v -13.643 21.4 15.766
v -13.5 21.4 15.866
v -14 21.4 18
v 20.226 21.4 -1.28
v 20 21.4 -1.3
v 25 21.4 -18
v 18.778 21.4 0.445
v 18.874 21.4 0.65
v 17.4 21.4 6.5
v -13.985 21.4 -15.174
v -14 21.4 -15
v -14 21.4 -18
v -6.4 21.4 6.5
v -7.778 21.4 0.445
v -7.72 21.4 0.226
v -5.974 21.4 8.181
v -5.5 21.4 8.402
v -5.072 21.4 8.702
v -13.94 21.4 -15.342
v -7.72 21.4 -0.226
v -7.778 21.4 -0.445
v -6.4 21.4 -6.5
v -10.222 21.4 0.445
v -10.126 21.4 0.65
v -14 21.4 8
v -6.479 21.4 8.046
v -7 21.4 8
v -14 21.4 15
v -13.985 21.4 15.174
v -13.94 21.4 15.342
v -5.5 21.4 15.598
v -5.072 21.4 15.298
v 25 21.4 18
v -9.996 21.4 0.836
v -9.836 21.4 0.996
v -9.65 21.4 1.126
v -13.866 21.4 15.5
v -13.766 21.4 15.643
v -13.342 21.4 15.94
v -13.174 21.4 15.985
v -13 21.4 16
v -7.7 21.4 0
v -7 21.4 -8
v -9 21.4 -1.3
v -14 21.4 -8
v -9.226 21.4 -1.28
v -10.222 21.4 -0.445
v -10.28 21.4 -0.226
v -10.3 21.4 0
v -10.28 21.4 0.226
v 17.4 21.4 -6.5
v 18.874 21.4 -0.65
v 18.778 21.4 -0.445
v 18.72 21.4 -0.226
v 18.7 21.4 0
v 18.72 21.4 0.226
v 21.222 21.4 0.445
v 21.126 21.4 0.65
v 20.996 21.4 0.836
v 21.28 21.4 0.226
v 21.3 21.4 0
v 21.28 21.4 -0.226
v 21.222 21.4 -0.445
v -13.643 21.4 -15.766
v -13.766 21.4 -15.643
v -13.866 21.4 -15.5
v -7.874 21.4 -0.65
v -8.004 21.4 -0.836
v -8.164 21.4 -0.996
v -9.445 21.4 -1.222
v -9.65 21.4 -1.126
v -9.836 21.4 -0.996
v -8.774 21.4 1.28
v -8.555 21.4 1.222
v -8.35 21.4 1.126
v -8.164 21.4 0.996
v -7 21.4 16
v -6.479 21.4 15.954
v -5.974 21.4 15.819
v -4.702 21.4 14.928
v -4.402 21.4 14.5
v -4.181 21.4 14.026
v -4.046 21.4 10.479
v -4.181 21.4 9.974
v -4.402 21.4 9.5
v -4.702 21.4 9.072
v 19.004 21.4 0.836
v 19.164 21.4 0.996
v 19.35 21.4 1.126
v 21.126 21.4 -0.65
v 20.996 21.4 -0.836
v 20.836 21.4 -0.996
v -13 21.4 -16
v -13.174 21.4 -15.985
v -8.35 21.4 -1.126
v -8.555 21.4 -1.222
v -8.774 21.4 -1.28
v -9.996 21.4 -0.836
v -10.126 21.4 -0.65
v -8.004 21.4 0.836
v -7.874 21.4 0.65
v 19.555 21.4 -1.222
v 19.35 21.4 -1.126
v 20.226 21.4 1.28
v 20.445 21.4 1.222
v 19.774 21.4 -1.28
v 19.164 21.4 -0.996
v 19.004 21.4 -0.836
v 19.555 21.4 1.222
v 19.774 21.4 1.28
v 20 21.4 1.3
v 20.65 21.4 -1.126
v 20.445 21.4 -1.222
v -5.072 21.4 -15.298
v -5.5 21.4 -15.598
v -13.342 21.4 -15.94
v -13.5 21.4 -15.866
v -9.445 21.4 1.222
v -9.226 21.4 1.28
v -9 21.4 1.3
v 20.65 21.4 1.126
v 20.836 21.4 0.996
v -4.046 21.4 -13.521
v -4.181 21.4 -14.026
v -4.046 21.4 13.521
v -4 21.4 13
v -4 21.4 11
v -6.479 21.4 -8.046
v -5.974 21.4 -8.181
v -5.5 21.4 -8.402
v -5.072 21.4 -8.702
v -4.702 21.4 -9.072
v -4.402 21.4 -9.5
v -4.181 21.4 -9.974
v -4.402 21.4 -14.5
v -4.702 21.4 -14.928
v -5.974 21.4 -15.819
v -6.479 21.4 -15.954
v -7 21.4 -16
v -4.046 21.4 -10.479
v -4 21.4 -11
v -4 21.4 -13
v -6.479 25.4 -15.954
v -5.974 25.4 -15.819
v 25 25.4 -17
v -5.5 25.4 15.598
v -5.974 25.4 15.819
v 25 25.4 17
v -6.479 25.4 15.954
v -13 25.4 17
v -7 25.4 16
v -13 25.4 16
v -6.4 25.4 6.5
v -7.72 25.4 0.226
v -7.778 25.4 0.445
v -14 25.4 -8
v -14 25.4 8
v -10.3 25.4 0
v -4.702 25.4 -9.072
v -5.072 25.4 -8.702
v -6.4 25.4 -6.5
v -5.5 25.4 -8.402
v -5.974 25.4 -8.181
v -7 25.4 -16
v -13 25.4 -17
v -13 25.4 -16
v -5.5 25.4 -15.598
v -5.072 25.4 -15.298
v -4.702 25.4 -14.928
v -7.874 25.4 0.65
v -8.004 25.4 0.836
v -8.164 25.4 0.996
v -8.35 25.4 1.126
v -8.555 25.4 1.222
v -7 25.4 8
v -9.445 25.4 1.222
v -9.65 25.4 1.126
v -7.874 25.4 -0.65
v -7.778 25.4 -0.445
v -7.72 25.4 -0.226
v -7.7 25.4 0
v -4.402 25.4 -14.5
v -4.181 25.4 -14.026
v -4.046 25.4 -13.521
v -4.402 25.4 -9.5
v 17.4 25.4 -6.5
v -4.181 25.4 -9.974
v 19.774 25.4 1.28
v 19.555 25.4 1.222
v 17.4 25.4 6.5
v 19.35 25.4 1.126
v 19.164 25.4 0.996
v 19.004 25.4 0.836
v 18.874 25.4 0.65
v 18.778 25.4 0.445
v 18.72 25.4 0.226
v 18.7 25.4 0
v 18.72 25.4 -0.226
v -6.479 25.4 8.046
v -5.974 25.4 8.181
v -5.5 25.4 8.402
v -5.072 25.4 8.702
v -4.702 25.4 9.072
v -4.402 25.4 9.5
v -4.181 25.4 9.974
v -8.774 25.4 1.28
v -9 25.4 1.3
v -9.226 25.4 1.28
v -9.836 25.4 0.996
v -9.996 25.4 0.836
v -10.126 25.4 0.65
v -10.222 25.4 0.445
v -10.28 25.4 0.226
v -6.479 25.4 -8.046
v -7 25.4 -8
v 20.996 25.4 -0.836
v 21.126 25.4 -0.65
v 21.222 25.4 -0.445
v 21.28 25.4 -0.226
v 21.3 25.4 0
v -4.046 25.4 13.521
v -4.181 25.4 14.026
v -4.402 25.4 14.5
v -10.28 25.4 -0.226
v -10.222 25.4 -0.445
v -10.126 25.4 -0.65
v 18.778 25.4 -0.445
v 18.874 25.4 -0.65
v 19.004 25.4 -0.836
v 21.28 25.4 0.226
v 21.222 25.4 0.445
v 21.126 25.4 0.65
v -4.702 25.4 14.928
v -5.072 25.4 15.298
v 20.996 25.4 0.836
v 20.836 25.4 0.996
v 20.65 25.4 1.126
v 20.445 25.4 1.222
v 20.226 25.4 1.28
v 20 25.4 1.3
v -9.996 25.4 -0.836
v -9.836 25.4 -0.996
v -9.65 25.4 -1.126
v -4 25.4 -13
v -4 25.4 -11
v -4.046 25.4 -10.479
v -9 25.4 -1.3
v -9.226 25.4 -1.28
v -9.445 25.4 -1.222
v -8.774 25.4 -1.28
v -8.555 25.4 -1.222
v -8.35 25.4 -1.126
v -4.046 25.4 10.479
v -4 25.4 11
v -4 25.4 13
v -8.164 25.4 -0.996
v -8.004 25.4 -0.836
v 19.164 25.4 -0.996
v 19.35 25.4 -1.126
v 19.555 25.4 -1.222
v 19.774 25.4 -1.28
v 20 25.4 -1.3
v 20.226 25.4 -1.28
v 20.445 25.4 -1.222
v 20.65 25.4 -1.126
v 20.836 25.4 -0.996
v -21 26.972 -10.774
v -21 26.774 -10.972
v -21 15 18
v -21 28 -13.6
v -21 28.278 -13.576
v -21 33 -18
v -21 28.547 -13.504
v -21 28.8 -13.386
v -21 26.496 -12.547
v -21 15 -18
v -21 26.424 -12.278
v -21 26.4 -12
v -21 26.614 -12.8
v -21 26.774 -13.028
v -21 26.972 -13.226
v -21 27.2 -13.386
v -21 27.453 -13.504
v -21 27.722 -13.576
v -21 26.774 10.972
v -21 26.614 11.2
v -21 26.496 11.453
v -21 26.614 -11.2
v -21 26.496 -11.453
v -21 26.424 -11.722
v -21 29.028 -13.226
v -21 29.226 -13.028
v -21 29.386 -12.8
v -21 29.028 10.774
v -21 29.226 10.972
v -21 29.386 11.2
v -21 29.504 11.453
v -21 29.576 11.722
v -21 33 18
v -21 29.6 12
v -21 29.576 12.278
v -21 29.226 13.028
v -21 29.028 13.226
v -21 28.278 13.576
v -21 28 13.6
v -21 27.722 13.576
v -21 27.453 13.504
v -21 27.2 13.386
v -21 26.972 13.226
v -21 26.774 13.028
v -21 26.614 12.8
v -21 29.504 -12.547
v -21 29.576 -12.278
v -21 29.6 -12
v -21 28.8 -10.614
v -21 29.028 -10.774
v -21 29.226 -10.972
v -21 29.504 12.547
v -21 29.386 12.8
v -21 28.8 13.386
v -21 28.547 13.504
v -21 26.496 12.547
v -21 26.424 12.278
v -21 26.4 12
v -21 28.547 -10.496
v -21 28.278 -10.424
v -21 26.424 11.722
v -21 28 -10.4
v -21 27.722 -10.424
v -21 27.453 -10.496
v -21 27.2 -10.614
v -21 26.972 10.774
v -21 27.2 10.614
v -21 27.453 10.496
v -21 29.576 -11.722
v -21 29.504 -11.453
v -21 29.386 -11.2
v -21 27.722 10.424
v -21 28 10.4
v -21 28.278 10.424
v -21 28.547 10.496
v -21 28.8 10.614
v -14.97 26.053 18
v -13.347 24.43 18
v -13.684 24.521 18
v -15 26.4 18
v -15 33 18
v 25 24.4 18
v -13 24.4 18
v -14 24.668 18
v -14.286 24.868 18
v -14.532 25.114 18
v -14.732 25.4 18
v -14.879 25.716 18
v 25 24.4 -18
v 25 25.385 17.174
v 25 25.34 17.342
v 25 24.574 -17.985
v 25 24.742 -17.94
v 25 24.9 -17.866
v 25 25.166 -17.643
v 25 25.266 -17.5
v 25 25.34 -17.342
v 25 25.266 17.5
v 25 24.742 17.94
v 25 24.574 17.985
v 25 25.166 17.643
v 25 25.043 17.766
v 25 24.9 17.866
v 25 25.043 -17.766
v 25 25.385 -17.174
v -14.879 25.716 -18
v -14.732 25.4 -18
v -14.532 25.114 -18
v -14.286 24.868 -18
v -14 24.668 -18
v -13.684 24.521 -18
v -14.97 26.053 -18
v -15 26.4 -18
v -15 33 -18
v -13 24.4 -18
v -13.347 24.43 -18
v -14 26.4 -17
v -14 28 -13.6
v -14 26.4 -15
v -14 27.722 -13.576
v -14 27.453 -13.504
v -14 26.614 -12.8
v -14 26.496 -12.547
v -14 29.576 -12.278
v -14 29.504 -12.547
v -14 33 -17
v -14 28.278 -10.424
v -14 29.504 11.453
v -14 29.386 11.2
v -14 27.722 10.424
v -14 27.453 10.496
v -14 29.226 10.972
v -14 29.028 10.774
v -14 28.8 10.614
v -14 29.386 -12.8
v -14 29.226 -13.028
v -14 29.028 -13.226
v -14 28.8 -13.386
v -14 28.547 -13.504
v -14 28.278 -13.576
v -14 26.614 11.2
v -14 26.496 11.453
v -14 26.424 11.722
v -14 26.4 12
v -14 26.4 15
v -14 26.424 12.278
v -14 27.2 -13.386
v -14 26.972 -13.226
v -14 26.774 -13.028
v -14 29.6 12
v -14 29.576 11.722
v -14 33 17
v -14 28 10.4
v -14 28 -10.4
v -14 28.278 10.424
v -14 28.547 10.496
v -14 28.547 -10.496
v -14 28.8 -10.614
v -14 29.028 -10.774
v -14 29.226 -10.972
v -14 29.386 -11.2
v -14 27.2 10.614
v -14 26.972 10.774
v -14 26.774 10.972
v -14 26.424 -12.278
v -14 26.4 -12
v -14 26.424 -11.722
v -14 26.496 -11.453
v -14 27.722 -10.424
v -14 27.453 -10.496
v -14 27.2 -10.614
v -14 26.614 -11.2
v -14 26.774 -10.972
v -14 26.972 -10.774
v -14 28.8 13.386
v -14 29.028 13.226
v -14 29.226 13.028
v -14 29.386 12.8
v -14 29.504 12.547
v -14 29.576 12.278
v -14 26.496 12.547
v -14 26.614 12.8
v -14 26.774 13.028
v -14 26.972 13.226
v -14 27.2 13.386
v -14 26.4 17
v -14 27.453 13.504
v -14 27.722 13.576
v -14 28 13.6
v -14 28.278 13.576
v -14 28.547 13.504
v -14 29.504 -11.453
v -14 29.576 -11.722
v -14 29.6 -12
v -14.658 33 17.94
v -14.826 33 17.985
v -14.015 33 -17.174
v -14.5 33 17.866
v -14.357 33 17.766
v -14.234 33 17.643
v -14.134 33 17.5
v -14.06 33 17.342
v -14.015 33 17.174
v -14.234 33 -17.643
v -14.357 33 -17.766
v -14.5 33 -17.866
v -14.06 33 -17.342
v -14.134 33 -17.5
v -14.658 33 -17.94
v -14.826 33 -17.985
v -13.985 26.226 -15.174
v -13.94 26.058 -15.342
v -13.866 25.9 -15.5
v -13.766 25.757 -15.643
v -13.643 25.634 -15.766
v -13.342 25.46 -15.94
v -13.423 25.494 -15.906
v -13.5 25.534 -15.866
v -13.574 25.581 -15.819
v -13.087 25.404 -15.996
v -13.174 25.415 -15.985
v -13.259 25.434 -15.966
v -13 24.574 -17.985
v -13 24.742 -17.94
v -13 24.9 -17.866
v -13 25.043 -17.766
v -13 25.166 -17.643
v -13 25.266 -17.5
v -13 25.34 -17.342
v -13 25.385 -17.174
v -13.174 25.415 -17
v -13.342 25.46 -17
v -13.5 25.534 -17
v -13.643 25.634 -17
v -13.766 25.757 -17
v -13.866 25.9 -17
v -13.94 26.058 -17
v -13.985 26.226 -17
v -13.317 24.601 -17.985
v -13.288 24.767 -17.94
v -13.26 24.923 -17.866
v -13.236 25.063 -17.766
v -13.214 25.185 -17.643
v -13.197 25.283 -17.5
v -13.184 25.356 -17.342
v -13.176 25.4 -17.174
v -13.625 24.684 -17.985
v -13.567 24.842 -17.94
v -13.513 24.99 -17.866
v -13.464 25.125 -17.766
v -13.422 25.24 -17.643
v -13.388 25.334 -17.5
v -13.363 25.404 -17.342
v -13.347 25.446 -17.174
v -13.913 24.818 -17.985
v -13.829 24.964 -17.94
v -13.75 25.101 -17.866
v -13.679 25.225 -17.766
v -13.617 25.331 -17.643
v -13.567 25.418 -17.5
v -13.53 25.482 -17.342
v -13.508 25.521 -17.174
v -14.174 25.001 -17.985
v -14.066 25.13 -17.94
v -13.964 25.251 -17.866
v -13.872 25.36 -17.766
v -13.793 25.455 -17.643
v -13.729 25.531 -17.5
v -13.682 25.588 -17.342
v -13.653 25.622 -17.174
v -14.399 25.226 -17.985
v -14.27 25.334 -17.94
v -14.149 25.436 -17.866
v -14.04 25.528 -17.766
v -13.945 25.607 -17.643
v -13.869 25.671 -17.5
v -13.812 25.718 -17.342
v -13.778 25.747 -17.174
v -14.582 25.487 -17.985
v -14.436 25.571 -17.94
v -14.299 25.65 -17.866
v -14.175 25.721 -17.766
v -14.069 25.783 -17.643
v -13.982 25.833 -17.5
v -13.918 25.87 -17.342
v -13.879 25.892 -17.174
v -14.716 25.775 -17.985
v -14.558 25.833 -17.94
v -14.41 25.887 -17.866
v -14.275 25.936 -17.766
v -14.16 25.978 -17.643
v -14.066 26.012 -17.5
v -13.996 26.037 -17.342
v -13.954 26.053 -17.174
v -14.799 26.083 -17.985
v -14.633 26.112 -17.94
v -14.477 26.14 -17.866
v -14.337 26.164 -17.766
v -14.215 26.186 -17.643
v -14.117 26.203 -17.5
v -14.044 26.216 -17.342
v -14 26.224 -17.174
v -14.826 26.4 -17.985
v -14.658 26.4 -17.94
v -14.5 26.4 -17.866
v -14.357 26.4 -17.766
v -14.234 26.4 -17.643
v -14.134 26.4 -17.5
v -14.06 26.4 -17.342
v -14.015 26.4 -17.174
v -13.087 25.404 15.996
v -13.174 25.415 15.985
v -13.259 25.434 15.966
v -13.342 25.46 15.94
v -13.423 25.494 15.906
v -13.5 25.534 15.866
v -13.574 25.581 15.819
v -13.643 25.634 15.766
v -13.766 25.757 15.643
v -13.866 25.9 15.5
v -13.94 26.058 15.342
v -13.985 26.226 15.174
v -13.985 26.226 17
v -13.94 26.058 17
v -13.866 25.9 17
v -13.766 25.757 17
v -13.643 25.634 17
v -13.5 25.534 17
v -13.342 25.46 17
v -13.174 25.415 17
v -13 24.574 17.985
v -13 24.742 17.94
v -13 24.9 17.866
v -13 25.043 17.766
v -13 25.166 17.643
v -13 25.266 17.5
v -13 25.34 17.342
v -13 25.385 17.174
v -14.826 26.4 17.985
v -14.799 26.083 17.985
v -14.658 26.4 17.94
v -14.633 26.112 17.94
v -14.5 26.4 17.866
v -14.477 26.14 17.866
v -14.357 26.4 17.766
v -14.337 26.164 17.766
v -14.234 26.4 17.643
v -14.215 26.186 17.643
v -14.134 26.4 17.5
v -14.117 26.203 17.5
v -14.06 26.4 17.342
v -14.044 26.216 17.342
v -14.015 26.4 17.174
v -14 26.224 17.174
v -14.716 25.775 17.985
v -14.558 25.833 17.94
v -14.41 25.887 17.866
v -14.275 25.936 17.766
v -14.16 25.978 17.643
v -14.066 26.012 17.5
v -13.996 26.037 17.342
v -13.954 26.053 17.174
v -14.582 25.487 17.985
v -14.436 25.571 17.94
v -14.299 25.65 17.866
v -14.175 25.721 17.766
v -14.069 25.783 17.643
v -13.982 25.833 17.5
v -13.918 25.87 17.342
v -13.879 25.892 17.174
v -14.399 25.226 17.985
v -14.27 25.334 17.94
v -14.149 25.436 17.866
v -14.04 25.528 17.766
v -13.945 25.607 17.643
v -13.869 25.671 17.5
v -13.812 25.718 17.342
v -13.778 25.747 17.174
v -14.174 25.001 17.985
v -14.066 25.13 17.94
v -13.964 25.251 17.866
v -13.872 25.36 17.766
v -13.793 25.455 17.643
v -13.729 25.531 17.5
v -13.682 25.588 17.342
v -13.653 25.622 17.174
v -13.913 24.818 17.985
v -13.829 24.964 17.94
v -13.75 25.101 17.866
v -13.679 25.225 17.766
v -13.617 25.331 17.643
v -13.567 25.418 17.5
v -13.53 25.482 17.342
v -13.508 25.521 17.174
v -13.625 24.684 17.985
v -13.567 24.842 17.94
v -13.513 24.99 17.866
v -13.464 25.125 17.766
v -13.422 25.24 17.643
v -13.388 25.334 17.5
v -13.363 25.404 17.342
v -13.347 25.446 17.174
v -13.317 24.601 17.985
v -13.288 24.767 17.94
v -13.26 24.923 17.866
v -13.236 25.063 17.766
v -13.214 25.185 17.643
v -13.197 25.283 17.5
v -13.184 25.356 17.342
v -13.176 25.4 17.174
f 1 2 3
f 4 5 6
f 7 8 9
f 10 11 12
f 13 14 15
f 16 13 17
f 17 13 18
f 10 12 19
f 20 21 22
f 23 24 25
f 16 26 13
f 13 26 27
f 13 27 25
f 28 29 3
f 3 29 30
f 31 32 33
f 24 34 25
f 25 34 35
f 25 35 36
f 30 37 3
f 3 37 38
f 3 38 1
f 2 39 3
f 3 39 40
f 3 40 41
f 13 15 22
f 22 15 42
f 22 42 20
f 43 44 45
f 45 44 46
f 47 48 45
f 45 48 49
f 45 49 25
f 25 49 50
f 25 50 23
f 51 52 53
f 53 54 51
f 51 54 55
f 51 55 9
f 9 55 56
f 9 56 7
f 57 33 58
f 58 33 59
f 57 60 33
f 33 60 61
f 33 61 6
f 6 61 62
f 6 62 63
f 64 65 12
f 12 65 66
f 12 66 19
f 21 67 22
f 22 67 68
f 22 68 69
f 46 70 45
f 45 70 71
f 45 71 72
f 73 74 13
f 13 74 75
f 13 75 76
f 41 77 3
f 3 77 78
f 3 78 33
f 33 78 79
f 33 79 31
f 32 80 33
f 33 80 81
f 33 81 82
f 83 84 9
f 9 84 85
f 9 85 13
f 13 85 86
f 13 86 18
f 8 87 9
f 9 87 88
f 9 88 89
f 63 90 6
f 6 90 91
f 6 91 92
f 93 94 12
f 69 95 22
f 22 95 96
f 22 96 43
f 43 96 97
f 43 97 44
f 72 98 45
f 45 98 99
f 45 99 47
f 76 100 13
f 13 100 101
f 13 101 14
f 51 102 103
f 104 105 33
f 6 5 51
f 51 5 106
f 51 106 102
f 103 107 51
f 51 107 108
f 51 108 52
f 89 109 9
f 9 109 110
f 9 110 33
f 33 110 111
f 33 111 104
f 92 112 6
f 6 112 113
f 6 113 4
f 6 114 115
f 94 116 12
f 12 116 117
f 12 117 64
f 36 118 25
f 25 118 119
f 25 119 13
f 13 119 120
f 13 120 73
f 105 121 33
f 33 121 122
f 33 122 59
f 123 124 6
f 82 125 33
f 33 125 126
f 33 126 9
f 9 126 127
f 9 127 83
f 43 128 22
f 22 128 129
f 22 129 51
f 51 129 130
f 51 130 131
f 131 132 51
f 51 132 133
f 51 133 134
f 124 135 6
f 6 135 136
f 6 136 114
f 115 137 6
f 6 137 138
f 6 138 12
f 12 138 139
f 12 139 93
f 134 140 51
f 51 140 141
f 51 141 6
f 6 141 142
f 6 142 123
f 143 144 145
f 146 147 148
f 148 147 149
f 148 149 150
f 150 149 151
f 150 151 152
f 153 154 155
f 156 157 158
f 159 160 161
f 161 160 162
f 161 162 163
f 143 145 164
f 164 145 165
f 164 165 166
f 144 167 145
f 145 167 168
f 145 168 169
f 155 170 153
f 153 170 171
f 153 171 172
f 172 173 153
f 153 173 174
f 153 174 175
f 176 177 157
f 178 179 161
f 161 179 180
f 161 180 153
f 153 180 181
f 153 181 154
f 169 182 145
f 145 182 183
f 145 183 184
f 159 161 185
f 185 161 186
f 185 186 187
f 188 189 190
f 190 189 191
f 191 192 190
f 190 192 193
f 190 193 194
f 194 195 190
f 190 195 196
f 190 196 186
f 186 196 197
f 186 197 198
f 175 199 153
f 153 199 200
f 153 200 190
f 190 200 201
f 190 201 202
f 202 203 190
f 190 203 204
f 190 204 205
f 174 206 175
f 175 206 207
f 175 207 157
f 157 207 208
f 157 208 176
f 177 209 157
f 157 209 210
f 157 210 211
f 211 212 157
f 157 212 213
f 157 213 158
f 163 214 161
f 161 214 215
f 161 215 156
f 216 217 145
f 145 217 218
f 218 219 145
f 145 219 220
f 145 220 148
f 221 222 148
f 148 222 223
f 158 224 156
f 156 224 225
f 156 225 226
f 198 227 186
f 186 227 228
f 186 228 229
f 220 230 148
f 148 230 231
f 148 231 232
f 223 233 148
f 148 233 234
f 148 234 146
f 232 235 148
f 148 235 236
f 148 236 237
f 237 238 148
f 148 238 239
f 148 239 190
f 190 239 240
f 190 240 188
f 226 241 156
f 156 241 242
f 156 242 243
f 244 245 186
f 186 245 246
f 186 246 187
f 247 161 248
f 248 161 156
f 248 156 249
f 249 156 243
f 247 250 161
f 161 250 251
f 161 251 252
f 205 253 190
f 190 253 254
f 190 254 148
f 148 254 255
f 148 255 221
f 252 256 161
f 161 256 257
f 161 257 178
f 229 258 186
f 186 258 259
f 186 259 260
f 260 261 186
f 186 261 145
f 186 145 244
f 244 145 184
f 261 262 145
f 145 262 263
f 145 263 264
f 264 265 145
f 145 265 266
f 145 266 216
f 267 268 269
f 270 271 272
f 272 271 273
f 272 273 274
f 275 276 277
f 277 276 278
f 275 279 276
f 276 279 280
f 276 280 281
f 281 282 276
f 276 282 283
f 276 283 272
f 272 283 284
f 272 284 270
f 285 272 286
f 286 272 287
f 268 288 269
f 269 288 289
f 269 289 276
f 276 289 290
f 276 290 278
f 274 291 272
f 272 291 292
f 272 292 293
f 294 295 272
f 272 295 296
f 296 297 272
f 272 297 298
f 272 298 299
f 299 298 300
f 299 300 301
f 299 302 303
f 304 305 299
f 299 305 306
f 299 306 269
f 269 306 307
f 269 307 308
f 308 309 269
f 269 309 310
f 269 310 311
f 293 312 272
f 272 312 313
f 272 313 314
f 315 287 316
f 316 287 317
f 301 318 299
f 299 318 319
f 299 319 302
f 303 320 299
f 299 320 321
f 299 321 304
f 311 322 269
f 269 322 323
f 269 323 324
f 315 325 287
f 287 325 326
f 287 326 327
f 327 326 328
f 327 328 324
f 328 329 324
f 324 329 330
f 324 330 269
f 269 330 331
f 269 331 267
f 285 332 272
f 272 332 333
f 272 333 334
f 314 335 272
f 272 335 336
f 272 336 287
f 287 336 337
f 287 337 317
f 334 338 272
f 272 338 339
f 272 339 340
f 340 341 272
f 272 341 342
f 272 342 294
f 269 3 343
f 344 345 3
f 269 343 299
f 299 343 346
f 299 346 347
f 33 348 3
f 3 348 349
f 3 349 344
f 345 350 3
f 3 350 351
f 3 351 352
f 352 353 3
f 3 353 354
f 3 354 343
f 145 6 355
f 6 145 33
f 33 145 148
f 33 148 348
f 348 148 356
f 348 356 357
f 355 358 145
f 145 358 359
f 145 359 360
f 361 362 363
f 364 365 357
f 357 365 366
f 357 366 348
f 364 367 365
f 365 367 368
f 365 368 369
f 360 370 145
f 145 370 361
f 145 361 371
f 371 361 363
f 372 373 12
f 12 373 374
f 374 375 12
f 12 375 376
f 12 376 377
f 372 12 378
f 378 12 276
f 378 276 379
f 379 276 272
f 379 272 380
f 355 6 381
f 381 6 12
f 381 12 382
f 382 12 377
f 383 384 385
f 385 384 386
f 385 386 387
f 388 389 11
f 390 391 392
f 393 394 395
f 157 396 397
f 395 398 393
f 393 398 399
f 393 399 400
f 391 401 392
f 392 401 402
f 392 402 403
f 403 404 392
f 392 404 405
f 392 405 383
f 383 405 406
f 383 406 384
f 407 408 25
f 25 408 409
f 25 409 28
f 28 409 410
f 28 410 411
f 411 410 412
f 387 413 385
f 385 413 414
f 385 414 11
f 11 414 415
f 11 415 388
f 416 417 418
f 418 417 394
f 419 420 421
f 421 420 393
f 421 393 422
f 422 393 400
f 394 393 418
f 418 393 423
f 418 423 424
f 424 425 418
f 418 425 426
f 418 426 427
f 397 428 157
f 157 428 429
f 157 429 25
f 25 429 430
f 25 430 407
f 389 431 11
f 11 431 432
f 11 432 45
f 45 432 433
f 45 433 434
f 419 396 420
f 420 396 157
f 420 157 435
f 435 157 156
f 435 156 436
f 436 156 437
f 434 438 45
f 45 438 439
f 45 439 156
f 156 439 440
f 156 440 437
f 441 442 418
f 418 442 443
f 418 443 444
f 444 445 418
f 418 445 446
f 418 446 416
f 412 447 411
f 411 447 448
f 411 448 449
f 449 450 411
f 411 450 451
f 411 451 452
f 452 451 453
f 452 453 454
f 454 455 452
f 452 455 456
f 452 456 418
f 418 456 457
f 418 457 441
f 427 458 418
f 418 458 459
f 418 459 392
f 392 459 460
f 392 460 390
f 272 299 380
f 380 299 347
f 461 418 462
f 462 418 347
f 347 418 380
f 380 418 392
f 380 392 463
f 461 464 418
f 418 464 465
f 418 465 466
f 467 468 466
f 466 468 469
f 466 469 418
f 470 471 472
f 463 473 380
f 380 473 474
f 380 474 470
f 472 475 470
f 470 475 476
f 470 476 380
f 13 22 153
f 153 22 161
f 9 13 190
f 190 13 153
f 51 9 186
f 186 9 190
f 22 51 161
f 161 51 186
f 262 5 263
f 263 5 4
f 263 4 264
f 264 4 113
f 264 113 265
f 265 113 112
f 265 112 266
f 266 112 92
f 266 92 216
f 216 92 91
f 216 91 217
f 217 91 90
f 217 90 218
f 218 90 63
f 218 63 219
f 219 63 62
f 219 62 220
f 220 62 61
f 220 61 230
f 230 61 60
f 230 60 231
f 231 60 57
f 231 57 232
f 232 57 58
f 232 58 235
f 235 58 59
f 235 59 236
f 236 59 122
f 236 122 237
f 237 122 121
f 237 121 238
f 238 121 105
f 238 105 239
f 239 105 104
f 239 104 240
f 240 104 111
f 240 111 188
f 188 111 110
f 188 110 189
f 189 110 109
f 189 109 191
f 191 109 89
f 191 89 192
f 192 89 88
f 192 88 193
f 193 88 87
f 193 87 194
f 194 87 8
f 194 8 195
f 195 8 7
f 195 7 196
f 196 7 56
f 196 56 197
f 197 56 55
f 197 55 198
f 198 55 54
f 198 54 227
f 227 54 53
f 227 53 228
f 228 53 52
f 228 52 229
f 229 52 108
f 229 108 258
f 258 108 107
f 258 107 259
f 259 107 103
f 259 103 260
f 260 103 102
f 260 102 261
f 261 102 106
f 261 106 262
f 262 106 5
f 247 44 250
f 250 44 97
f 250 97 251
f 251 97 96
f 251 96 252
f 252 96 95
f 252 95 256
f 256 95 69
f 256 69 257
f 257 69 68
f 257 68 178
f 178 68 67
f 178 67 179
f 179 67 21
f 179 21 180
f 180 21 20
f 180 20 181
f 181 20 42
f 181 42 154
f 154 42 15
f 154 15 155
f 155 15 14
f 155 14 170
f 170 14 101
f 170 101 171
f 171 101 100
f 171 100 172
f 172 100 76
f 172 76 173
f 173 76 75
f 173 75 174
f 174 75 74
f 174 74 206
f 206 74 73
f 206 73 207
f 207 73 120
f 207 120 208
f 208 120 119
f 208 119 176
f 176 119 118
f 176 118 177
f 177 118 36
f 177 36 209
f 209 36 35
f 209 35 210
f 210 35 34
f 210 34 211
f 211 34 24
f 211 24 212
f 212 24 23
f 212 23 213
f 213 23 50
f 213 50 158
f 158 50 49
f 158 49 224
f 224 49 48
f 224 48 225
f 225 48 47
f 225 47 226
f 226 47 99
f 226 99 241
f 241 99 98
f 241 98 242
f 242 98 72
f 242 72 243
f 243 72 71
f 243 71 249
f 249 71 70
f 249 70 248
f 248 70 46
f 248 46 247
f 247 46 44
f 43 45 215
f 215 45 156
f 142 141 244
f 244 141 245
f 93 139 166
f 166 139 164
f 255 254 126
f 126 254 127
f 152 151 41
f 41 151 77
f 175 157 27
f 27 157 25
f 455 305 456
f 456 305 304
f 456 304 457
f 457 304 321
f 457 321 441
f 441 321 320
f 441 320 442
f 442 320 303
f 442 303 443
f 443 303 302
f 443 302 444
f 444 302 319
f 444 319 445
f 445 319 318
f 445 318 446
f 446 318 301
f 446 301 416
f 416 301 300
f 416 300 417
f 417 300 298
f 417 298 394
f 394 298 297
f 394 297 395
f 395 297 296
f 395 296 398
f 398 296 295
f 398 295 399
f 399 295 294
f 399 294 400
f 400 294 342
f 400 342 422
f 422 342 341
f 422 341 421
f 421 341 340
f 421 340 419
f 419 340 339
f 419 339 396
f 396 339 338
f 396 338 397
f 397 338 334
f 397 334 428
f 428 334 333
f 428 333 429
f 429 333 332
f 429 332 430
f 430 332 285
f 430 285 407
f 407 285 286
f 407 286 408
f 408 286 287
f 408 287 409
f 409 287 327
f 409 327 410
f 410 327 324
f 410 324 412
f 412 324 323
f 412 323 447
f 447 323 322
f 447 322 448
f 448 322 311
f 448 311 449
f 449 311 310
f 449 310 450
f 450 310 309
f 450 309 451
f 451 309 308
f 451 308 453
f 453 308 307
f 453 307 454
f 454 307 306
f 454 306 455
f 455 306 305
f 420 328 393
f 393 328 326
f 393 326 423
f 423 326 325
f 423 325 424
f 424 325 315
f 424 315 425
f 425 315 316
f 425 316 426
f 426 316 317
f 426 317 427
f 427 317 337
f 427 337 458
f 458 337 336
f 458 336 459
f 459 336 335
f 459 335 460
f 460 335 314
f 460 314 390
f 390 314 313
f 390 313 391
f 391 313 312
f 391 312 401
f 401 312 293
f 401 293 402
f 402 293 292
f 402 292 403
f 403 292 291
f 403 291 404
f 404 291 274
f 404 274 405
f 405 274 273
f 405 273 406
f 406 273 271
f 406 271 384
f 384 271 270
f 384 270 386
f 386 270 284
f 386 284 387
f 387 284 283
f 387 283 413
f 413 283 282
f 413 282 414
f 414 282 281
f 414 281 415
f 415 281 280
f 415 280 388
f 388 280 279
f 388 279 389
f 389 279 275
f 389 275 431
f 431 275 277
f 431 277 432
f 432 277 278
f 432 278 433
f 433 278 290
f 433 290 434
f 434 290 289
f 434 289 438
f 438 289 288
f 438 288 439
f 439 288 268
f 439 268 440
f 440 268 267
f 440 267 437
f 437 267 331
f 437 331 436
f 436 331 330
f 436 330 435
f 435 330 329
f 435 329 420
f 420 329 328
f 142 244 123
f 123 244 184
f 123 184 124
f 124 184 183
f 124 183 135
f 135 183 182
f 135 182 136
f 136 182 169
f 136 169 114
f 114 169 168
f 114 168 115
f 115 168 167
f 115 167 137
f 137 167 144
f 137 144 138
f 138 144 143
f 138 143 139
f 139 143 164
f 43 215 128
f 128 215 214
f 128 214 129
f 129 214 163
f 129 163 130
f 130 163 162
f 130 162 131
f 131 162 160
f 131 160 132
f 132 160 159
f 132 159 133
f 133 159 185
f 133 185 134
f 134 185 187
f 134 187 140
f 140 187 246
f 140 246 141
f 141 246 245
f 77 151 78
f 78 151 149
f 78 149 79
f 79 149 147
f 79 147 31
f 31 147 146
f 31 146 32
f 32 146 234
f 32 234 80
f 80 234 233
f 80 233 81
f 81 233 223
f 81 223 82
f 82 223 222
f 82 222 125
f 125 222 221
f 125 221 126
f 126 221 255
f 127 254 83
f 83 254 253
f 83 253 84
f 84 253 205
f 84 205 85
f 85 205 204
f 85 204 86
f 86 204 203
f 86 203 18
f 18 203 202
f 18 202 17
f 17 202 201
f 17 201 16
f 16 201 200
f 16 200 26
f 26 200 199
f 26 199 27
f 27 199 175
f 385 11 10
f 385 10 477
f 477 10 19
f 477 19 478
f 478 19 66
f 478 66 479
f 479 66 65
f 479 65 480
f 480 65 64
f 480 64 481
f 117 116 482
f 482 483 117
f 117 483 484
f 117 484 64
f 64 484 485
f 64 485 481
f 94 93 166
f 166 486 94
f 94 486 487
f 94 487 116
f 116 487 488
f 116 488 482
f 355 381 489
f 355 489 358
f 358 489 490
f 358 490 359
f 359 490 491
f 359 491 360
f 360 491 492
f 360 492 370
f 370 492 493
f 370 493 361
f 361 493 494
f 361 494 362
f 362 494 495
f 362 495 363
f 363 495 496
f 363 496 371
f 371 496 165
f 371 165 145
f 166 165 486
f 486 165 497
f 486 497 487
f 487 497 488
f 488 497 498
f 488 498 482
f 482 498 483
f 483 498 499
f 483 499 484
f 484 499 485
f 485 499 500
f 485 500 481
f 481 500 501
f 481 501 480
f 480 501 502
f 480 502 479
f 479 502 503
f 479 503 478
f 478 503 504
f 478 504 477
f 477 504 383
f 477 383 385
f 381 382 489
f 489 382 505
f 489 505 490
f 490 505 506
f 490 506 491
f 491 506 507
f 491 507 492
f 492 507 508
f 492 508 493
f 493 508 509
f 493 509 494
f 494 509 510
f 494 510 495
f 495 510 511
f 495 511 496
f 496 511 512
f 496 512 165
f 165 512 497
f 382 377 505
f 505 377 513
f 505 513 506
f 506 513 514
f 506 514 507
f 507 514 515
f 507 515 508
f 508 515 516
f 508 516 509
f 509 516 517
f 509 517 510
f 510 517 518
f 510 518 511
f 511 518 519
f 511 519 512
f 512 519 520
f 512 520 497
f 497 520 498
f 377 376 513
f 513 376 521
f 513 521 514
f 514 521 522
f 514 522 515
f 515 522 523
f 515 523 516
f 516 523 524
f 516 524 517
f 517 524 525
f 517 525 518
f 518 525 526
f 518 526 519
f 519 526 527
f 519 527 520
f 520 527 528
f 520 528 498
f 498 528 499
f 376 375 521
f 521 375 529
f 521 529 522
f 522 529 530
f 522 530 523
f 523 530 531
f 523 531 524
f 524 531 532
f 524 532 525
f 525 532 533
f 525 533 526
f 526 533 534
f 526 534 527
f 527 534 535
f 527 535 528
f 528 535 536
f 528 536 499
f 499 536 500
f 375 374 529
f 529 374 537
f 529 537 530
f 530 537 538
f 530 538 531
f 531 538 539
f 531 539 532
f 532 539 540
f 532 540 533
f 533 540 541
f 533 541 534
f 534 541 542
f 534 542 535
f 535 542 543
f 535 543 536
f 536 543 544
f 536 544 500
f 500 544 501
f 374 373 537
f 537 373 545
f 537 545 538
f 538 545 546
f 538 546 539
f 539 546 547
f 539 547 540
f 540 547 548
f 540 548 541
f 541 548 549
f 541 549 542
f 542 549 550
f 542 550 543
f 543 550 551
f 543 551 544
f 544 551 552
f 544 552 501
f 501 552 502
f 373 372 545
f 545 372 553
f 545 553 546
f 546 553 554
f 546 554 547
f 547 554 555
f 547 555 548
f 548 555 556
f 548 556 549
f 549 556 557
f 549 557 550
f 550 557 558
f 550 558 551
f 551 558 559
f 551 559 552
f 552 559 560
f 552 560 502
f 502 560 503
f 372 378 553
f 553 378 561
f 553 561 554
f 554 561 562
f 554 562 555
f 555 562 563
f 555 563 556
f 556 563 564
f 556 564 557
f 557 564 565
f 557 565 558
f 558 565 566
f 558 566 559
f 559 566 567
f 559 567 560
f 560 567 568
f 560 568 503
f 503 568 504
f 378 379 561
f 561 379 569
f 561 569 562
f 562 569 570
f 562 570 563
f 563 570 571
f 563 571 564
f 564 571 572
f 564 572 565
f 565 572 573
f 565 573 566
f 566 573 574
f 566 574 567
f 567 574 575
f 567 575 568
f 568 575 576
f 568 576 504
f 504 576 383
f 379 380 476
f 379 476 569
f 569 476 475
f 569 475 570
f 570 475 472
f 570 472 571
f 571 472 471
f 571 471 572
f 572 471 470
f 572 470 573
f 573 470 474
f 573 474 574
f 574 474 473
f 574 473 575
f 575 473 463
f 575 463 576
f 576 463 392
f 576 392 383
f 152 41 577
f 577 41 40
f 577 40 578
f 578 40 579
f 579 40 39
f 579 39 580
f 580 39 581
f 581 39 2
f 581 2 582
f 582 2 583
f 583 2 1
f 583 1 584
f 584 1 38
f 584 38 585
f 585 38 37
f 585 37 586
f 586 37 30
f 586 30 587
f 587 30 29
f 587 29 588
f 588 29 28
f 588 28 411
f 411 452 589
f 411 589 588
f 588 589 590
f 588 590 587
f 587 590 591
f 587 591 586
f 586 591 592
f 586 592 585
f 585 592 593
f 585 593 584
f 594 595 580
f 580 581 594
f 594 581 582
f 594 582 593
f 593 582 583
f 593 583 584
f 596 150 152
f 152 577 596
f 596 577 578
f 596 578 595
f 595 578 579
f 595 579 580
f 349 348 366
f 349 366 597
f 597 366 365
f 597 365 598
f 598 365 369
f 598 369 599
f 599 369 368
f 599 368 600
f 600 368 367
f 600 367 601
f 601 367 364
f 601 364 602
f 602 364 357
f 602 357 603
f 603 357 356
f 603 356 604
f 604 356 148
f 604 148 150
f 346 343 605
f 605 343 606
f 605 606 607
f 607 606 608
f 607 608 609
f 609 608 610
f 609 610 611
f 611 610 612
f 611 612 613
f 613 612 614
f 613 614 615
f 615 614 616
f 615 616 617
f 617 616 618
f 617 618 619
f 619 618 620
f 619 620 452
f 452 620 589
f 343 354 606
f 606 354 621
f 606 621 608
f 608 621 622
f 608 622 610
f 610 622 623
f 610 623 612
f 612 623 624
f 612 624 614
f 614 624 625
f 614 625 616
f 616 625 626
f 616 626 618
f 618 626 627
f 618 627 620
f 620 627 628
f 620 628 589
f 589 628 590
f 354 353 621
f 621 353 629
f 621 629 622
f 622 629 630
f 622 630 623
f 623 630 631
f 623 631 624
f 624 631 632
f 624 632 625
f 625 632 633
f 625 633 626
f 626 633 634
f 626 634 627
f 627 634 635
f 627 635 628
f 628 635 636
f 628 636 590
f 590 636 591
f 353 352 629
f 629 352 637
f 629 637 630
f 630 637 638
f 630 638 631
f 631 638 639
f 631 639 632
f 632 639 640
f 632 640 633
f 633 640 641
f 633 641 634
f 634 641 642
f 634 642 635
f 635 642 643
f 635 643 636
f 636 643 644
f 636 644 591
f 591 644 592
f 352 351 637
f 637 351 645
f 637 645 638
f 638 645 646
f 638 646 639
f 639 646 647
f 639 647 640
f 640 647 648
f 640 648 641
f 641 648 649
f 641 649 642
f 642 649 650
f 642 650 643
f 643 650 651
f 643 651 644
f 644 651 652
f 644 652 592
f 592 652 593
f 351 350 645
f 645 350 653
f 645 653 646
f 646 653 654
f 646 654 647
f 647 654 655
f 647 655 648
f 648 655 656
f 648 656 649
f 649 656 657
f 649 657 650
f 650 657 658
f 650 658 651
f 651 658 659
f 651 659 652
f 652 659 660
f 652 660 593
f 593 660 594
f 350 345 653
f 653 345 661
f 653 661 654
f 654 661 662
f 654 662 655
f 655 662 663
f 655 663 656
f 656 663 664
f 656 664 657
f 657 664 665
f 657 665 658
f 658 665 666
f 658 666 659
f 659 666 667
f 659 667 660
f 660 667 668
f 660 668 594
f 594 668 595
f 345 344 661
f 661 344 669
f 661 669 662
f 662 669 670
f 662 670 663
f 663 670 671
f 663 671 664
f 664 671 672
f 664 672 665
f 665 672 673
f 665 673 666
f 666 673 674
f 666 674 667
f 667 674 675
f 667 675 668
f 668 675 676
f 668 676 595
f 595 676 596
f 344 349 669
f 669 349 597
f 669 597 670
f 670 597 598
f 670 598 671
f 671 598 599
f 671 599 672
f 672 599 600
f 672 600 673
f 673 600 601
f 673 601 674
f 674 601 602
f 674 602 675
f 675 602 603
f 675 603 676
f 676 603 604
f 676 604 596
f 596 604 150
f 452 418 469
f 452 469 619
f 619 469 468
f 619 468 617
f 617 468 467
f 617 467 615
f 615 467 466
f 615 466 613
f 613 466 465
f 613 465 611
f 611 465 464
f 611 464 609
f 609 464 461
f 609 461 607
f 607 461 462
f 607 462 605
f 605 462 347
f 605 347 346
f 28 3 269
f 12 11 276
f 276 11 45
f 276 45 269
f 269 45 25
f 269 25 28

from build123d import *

# Parameters (mm, degrees)
SERVO_SHELF_START                = 21.4
SERVO_SHELF_PROFILE_W            = 46
SERVO_SHELF_PROFILE_H            = 36
SERVO_SHELF_DEPTH                = 4
REAR_CLAMPING_BLOCK_START        = -18
REAR_CLAMPING_BLOCK_PROFILE_W    = 7
REAR_CLAMPING_BLOCK_PROFILE_H    = 10
REAR_CLAMPING_BLOCK_DEPTH        = 36
SERVO_BODY_WINDOW_START          = 20.4
SERVO_BODY_WINDOW_PROFILE_W      = 23.8
SERVO_BODY_WINDOW_PROFILE_H      = 13
SERVO_BODY_WINDOW_DEPTH          = 25.744213361
YAW_SERVO_M2_FASTENERS_START     = 20.4
YAW_SERVO_M2_FASTENERS_PROFILE_R = 1.3
YAW_SERVO_M2_FASTENERS_DEPTH     = 25.744213361
LEFT_NUT_ACCESS_START            = 20
LEFT_NUT_ACCESS_PROFILE_W        = 10
LEFT_NUT_ACCESS_PROFILE_H        = 8
LEFT_NUT_ACCESS_DEPTH            = 26.144213361
RIGHT_NUT_ACCESS_START           = 20
RIGHT_NUT_ACCESS_PROFILE_W       = 10
RIGHT_NUT_ACCESS_PROFILE_H       = 8
RIGHT_NUT_ACCESS_DEPTH           = 26.144213361
REAR_CLAMPING_M3_HOLES_START     = -25
REAR_CLAMPING_M3_PROFILE_R       = 1.6
REAR_CLAMPING_M3_HOLES_DEPTH     = 11
FILLET1_R                        = 3
FILLET2_R                        = 1
BOSS_EXTRUDE1_START              = -36
BOSS_EXTRUDE1_DEPTH              = 36


with BuildPart() as part:
    # Servo_shelf_profile → Servo_shelf (new body)
    with BuildSketch(Plane(origin=(0, 0, 0), x_dir=(1, 0, 0), z_dir=(0, 1, 0)).offset(SERVO_SHELF_START)):
        with Locations((2, 0)):
            Rectangle(SERVO_SHELF_PROFILE_W, SERVO_SHELF_PROFILE_H)
    extrude(amount=SERVO_SHELF_DEPTH)

    # Rear_clamping_block_profile → Rear_clamping_block (add)
    with BuildSketch(Plane.XY.offset(REAR_CLAMPING_BLOCK_START)):
        with Locations((-17.5, 28)):
            Rectangle(REAR_CLAMPING_BLOCK_PROFILE_W, REAR_CLAMPING_BLOCK_PROFILE_H)
    extrude(amount=REAR_CLAMPING_BLOCK_DEPTH)

    # Servo_body_window_profile → Servo_body_window (cut, through all)
    with BuildSketch(Plane(origin=(0, 0, 0), x_dir=(1, 0, 0), z_dir=(0, 1, 0)).offset(SERVO_BODY_WINDOW_START)):
        with Locations((5.5, 0)):
            Rectangle(SERVO_BODY_WINDOW_PROFILE_W, SERVO_BODY_WINDOW_PROFILE_H)
    extrude(amount=SERVO_BODY_WINDOW_DEPTH, mode=Mode.SUBTRACT)

    # Yaw_servo_M2_fasteners_profile → Yaw_servo_M2_fasteners (cut, through all)
    with BuildSketch(Plane(origin=(0, 0, 0), x_dir=(1, 0, 0), z_dir=(0, 1, 0)).offset(YAW_SERVO_M2_FASTENERS_START)):
        with Locations(Location((-9, 0, 0), (0, 0, 90))):
            Circle(YAW_SERVO_M2_FASTENERS_PROFILE_R)
        with Locations(Location((20, 0, 0), (0, 0, 90))):
            Circle(YAW_SERVO_M2_FASTENERS_PROFILE_R)
    extrude(amount=YAW_SERVO_M2_FASTENERS_DEPTH, mode=Mode.SUBTRACT)

    # Left_nut_access_profile → Left_nut_access (cut, through all)
    with BuildSketch(Plane(origin=(0, 0, 0), x_dir=(1, 0, 0), z_dir=(0, 1, 0)).offset(LEFT_NUT_ACCESS_START)):
        with Locations((-9, 12)):
            Rectangle(LEFT_NUT_ACCESS_PROFILE_W, LEFT_NUT_ACCESS_PROFILE_H)
    extrude(amount=LEFT_NUT_ACCESS_DEPTH, mode=Mode.SUBTRACT)

    # Right_nut_access_profile → Right_nut_access (cut, through all)
    with BuildSketch(Plane(origin=(0, 0, 0), x_dir=(1, 0, 0), z_dir=(0, 1, 0)).offset(RIGHT_NUT_ACCESS_START)):
        with Locations((-9, -12)):
            Rectangle(RIGHT_NUT_ACCESS_PROFILE_W, RIGHT_NUT_ACCESS_PROFILE_H)
    extrude(amount=RIGHT_NUT_ACCESS_DEPTH, mode=Mode.SUBTRACT)

    # Rear_clamping_M3_profile → Rear_clamping_M3_holes (cut)
    with BuildSketch(Plane(origin=(0, 0, 0), x_dir=(0, 0, -1), z_dir=(1, 0, 0)).offset(REAR_CLAMPING_M3_HOLES_START)):
        with Locations((12, 28)):
            Circle(REAR_CLAMPING_M3_PROFILE_R)
        with Locations((-12, 28)):
            Circle(REAR_CLAMPING_M3_PROFILE_R)
    extrude(amount=REAR_CLAMPING_M3_HOLES_DEPTH, mode=Mode.SUBTRACT)

    # Fillet1
    fillet1_edges = [part.edges().sort_by_distance(p)[0] for p in [
        (-4, 23.4, 16),
        (-4, 23.4, 8),
        (-4, 23.4, -8),
        (-4, 23.4, -16),
    ]]
    fillet(fillet1_edges, radius=FILLET1_R)

    # Fillet2
    fillet2_edges = [part.edges().sort_by_distance(p)[0] for p in [
        (-14, 23.4, 16),
        (5.5, 25.4, 18),
        (-14, 25.4, 17),
        (5.5, 25.4, -18),
        (-14, 29.2, 18),
        (-14, 29.2, -18),
        (-14, 25.4, -17),
        (-14, 23.4, -16),
    ]]
    fillet(fillet2_edges, radius=FILLET2_R)

    # Sketch1 → Boss-Extrude1 (add)
    with BuildSketch(Plane(origin=(0, 0, -18), x_dir=(-1, 0, 0), z_dir=(0, 0, -1)).offset(BOSS_EXTRUDE1_START)):
        Polygon((14, 21.4), (21, 15), (21, 21.4), align=None)
    extrude(amount=BOSS_EXTRUDE1_DEPTH)


solid = part.part
